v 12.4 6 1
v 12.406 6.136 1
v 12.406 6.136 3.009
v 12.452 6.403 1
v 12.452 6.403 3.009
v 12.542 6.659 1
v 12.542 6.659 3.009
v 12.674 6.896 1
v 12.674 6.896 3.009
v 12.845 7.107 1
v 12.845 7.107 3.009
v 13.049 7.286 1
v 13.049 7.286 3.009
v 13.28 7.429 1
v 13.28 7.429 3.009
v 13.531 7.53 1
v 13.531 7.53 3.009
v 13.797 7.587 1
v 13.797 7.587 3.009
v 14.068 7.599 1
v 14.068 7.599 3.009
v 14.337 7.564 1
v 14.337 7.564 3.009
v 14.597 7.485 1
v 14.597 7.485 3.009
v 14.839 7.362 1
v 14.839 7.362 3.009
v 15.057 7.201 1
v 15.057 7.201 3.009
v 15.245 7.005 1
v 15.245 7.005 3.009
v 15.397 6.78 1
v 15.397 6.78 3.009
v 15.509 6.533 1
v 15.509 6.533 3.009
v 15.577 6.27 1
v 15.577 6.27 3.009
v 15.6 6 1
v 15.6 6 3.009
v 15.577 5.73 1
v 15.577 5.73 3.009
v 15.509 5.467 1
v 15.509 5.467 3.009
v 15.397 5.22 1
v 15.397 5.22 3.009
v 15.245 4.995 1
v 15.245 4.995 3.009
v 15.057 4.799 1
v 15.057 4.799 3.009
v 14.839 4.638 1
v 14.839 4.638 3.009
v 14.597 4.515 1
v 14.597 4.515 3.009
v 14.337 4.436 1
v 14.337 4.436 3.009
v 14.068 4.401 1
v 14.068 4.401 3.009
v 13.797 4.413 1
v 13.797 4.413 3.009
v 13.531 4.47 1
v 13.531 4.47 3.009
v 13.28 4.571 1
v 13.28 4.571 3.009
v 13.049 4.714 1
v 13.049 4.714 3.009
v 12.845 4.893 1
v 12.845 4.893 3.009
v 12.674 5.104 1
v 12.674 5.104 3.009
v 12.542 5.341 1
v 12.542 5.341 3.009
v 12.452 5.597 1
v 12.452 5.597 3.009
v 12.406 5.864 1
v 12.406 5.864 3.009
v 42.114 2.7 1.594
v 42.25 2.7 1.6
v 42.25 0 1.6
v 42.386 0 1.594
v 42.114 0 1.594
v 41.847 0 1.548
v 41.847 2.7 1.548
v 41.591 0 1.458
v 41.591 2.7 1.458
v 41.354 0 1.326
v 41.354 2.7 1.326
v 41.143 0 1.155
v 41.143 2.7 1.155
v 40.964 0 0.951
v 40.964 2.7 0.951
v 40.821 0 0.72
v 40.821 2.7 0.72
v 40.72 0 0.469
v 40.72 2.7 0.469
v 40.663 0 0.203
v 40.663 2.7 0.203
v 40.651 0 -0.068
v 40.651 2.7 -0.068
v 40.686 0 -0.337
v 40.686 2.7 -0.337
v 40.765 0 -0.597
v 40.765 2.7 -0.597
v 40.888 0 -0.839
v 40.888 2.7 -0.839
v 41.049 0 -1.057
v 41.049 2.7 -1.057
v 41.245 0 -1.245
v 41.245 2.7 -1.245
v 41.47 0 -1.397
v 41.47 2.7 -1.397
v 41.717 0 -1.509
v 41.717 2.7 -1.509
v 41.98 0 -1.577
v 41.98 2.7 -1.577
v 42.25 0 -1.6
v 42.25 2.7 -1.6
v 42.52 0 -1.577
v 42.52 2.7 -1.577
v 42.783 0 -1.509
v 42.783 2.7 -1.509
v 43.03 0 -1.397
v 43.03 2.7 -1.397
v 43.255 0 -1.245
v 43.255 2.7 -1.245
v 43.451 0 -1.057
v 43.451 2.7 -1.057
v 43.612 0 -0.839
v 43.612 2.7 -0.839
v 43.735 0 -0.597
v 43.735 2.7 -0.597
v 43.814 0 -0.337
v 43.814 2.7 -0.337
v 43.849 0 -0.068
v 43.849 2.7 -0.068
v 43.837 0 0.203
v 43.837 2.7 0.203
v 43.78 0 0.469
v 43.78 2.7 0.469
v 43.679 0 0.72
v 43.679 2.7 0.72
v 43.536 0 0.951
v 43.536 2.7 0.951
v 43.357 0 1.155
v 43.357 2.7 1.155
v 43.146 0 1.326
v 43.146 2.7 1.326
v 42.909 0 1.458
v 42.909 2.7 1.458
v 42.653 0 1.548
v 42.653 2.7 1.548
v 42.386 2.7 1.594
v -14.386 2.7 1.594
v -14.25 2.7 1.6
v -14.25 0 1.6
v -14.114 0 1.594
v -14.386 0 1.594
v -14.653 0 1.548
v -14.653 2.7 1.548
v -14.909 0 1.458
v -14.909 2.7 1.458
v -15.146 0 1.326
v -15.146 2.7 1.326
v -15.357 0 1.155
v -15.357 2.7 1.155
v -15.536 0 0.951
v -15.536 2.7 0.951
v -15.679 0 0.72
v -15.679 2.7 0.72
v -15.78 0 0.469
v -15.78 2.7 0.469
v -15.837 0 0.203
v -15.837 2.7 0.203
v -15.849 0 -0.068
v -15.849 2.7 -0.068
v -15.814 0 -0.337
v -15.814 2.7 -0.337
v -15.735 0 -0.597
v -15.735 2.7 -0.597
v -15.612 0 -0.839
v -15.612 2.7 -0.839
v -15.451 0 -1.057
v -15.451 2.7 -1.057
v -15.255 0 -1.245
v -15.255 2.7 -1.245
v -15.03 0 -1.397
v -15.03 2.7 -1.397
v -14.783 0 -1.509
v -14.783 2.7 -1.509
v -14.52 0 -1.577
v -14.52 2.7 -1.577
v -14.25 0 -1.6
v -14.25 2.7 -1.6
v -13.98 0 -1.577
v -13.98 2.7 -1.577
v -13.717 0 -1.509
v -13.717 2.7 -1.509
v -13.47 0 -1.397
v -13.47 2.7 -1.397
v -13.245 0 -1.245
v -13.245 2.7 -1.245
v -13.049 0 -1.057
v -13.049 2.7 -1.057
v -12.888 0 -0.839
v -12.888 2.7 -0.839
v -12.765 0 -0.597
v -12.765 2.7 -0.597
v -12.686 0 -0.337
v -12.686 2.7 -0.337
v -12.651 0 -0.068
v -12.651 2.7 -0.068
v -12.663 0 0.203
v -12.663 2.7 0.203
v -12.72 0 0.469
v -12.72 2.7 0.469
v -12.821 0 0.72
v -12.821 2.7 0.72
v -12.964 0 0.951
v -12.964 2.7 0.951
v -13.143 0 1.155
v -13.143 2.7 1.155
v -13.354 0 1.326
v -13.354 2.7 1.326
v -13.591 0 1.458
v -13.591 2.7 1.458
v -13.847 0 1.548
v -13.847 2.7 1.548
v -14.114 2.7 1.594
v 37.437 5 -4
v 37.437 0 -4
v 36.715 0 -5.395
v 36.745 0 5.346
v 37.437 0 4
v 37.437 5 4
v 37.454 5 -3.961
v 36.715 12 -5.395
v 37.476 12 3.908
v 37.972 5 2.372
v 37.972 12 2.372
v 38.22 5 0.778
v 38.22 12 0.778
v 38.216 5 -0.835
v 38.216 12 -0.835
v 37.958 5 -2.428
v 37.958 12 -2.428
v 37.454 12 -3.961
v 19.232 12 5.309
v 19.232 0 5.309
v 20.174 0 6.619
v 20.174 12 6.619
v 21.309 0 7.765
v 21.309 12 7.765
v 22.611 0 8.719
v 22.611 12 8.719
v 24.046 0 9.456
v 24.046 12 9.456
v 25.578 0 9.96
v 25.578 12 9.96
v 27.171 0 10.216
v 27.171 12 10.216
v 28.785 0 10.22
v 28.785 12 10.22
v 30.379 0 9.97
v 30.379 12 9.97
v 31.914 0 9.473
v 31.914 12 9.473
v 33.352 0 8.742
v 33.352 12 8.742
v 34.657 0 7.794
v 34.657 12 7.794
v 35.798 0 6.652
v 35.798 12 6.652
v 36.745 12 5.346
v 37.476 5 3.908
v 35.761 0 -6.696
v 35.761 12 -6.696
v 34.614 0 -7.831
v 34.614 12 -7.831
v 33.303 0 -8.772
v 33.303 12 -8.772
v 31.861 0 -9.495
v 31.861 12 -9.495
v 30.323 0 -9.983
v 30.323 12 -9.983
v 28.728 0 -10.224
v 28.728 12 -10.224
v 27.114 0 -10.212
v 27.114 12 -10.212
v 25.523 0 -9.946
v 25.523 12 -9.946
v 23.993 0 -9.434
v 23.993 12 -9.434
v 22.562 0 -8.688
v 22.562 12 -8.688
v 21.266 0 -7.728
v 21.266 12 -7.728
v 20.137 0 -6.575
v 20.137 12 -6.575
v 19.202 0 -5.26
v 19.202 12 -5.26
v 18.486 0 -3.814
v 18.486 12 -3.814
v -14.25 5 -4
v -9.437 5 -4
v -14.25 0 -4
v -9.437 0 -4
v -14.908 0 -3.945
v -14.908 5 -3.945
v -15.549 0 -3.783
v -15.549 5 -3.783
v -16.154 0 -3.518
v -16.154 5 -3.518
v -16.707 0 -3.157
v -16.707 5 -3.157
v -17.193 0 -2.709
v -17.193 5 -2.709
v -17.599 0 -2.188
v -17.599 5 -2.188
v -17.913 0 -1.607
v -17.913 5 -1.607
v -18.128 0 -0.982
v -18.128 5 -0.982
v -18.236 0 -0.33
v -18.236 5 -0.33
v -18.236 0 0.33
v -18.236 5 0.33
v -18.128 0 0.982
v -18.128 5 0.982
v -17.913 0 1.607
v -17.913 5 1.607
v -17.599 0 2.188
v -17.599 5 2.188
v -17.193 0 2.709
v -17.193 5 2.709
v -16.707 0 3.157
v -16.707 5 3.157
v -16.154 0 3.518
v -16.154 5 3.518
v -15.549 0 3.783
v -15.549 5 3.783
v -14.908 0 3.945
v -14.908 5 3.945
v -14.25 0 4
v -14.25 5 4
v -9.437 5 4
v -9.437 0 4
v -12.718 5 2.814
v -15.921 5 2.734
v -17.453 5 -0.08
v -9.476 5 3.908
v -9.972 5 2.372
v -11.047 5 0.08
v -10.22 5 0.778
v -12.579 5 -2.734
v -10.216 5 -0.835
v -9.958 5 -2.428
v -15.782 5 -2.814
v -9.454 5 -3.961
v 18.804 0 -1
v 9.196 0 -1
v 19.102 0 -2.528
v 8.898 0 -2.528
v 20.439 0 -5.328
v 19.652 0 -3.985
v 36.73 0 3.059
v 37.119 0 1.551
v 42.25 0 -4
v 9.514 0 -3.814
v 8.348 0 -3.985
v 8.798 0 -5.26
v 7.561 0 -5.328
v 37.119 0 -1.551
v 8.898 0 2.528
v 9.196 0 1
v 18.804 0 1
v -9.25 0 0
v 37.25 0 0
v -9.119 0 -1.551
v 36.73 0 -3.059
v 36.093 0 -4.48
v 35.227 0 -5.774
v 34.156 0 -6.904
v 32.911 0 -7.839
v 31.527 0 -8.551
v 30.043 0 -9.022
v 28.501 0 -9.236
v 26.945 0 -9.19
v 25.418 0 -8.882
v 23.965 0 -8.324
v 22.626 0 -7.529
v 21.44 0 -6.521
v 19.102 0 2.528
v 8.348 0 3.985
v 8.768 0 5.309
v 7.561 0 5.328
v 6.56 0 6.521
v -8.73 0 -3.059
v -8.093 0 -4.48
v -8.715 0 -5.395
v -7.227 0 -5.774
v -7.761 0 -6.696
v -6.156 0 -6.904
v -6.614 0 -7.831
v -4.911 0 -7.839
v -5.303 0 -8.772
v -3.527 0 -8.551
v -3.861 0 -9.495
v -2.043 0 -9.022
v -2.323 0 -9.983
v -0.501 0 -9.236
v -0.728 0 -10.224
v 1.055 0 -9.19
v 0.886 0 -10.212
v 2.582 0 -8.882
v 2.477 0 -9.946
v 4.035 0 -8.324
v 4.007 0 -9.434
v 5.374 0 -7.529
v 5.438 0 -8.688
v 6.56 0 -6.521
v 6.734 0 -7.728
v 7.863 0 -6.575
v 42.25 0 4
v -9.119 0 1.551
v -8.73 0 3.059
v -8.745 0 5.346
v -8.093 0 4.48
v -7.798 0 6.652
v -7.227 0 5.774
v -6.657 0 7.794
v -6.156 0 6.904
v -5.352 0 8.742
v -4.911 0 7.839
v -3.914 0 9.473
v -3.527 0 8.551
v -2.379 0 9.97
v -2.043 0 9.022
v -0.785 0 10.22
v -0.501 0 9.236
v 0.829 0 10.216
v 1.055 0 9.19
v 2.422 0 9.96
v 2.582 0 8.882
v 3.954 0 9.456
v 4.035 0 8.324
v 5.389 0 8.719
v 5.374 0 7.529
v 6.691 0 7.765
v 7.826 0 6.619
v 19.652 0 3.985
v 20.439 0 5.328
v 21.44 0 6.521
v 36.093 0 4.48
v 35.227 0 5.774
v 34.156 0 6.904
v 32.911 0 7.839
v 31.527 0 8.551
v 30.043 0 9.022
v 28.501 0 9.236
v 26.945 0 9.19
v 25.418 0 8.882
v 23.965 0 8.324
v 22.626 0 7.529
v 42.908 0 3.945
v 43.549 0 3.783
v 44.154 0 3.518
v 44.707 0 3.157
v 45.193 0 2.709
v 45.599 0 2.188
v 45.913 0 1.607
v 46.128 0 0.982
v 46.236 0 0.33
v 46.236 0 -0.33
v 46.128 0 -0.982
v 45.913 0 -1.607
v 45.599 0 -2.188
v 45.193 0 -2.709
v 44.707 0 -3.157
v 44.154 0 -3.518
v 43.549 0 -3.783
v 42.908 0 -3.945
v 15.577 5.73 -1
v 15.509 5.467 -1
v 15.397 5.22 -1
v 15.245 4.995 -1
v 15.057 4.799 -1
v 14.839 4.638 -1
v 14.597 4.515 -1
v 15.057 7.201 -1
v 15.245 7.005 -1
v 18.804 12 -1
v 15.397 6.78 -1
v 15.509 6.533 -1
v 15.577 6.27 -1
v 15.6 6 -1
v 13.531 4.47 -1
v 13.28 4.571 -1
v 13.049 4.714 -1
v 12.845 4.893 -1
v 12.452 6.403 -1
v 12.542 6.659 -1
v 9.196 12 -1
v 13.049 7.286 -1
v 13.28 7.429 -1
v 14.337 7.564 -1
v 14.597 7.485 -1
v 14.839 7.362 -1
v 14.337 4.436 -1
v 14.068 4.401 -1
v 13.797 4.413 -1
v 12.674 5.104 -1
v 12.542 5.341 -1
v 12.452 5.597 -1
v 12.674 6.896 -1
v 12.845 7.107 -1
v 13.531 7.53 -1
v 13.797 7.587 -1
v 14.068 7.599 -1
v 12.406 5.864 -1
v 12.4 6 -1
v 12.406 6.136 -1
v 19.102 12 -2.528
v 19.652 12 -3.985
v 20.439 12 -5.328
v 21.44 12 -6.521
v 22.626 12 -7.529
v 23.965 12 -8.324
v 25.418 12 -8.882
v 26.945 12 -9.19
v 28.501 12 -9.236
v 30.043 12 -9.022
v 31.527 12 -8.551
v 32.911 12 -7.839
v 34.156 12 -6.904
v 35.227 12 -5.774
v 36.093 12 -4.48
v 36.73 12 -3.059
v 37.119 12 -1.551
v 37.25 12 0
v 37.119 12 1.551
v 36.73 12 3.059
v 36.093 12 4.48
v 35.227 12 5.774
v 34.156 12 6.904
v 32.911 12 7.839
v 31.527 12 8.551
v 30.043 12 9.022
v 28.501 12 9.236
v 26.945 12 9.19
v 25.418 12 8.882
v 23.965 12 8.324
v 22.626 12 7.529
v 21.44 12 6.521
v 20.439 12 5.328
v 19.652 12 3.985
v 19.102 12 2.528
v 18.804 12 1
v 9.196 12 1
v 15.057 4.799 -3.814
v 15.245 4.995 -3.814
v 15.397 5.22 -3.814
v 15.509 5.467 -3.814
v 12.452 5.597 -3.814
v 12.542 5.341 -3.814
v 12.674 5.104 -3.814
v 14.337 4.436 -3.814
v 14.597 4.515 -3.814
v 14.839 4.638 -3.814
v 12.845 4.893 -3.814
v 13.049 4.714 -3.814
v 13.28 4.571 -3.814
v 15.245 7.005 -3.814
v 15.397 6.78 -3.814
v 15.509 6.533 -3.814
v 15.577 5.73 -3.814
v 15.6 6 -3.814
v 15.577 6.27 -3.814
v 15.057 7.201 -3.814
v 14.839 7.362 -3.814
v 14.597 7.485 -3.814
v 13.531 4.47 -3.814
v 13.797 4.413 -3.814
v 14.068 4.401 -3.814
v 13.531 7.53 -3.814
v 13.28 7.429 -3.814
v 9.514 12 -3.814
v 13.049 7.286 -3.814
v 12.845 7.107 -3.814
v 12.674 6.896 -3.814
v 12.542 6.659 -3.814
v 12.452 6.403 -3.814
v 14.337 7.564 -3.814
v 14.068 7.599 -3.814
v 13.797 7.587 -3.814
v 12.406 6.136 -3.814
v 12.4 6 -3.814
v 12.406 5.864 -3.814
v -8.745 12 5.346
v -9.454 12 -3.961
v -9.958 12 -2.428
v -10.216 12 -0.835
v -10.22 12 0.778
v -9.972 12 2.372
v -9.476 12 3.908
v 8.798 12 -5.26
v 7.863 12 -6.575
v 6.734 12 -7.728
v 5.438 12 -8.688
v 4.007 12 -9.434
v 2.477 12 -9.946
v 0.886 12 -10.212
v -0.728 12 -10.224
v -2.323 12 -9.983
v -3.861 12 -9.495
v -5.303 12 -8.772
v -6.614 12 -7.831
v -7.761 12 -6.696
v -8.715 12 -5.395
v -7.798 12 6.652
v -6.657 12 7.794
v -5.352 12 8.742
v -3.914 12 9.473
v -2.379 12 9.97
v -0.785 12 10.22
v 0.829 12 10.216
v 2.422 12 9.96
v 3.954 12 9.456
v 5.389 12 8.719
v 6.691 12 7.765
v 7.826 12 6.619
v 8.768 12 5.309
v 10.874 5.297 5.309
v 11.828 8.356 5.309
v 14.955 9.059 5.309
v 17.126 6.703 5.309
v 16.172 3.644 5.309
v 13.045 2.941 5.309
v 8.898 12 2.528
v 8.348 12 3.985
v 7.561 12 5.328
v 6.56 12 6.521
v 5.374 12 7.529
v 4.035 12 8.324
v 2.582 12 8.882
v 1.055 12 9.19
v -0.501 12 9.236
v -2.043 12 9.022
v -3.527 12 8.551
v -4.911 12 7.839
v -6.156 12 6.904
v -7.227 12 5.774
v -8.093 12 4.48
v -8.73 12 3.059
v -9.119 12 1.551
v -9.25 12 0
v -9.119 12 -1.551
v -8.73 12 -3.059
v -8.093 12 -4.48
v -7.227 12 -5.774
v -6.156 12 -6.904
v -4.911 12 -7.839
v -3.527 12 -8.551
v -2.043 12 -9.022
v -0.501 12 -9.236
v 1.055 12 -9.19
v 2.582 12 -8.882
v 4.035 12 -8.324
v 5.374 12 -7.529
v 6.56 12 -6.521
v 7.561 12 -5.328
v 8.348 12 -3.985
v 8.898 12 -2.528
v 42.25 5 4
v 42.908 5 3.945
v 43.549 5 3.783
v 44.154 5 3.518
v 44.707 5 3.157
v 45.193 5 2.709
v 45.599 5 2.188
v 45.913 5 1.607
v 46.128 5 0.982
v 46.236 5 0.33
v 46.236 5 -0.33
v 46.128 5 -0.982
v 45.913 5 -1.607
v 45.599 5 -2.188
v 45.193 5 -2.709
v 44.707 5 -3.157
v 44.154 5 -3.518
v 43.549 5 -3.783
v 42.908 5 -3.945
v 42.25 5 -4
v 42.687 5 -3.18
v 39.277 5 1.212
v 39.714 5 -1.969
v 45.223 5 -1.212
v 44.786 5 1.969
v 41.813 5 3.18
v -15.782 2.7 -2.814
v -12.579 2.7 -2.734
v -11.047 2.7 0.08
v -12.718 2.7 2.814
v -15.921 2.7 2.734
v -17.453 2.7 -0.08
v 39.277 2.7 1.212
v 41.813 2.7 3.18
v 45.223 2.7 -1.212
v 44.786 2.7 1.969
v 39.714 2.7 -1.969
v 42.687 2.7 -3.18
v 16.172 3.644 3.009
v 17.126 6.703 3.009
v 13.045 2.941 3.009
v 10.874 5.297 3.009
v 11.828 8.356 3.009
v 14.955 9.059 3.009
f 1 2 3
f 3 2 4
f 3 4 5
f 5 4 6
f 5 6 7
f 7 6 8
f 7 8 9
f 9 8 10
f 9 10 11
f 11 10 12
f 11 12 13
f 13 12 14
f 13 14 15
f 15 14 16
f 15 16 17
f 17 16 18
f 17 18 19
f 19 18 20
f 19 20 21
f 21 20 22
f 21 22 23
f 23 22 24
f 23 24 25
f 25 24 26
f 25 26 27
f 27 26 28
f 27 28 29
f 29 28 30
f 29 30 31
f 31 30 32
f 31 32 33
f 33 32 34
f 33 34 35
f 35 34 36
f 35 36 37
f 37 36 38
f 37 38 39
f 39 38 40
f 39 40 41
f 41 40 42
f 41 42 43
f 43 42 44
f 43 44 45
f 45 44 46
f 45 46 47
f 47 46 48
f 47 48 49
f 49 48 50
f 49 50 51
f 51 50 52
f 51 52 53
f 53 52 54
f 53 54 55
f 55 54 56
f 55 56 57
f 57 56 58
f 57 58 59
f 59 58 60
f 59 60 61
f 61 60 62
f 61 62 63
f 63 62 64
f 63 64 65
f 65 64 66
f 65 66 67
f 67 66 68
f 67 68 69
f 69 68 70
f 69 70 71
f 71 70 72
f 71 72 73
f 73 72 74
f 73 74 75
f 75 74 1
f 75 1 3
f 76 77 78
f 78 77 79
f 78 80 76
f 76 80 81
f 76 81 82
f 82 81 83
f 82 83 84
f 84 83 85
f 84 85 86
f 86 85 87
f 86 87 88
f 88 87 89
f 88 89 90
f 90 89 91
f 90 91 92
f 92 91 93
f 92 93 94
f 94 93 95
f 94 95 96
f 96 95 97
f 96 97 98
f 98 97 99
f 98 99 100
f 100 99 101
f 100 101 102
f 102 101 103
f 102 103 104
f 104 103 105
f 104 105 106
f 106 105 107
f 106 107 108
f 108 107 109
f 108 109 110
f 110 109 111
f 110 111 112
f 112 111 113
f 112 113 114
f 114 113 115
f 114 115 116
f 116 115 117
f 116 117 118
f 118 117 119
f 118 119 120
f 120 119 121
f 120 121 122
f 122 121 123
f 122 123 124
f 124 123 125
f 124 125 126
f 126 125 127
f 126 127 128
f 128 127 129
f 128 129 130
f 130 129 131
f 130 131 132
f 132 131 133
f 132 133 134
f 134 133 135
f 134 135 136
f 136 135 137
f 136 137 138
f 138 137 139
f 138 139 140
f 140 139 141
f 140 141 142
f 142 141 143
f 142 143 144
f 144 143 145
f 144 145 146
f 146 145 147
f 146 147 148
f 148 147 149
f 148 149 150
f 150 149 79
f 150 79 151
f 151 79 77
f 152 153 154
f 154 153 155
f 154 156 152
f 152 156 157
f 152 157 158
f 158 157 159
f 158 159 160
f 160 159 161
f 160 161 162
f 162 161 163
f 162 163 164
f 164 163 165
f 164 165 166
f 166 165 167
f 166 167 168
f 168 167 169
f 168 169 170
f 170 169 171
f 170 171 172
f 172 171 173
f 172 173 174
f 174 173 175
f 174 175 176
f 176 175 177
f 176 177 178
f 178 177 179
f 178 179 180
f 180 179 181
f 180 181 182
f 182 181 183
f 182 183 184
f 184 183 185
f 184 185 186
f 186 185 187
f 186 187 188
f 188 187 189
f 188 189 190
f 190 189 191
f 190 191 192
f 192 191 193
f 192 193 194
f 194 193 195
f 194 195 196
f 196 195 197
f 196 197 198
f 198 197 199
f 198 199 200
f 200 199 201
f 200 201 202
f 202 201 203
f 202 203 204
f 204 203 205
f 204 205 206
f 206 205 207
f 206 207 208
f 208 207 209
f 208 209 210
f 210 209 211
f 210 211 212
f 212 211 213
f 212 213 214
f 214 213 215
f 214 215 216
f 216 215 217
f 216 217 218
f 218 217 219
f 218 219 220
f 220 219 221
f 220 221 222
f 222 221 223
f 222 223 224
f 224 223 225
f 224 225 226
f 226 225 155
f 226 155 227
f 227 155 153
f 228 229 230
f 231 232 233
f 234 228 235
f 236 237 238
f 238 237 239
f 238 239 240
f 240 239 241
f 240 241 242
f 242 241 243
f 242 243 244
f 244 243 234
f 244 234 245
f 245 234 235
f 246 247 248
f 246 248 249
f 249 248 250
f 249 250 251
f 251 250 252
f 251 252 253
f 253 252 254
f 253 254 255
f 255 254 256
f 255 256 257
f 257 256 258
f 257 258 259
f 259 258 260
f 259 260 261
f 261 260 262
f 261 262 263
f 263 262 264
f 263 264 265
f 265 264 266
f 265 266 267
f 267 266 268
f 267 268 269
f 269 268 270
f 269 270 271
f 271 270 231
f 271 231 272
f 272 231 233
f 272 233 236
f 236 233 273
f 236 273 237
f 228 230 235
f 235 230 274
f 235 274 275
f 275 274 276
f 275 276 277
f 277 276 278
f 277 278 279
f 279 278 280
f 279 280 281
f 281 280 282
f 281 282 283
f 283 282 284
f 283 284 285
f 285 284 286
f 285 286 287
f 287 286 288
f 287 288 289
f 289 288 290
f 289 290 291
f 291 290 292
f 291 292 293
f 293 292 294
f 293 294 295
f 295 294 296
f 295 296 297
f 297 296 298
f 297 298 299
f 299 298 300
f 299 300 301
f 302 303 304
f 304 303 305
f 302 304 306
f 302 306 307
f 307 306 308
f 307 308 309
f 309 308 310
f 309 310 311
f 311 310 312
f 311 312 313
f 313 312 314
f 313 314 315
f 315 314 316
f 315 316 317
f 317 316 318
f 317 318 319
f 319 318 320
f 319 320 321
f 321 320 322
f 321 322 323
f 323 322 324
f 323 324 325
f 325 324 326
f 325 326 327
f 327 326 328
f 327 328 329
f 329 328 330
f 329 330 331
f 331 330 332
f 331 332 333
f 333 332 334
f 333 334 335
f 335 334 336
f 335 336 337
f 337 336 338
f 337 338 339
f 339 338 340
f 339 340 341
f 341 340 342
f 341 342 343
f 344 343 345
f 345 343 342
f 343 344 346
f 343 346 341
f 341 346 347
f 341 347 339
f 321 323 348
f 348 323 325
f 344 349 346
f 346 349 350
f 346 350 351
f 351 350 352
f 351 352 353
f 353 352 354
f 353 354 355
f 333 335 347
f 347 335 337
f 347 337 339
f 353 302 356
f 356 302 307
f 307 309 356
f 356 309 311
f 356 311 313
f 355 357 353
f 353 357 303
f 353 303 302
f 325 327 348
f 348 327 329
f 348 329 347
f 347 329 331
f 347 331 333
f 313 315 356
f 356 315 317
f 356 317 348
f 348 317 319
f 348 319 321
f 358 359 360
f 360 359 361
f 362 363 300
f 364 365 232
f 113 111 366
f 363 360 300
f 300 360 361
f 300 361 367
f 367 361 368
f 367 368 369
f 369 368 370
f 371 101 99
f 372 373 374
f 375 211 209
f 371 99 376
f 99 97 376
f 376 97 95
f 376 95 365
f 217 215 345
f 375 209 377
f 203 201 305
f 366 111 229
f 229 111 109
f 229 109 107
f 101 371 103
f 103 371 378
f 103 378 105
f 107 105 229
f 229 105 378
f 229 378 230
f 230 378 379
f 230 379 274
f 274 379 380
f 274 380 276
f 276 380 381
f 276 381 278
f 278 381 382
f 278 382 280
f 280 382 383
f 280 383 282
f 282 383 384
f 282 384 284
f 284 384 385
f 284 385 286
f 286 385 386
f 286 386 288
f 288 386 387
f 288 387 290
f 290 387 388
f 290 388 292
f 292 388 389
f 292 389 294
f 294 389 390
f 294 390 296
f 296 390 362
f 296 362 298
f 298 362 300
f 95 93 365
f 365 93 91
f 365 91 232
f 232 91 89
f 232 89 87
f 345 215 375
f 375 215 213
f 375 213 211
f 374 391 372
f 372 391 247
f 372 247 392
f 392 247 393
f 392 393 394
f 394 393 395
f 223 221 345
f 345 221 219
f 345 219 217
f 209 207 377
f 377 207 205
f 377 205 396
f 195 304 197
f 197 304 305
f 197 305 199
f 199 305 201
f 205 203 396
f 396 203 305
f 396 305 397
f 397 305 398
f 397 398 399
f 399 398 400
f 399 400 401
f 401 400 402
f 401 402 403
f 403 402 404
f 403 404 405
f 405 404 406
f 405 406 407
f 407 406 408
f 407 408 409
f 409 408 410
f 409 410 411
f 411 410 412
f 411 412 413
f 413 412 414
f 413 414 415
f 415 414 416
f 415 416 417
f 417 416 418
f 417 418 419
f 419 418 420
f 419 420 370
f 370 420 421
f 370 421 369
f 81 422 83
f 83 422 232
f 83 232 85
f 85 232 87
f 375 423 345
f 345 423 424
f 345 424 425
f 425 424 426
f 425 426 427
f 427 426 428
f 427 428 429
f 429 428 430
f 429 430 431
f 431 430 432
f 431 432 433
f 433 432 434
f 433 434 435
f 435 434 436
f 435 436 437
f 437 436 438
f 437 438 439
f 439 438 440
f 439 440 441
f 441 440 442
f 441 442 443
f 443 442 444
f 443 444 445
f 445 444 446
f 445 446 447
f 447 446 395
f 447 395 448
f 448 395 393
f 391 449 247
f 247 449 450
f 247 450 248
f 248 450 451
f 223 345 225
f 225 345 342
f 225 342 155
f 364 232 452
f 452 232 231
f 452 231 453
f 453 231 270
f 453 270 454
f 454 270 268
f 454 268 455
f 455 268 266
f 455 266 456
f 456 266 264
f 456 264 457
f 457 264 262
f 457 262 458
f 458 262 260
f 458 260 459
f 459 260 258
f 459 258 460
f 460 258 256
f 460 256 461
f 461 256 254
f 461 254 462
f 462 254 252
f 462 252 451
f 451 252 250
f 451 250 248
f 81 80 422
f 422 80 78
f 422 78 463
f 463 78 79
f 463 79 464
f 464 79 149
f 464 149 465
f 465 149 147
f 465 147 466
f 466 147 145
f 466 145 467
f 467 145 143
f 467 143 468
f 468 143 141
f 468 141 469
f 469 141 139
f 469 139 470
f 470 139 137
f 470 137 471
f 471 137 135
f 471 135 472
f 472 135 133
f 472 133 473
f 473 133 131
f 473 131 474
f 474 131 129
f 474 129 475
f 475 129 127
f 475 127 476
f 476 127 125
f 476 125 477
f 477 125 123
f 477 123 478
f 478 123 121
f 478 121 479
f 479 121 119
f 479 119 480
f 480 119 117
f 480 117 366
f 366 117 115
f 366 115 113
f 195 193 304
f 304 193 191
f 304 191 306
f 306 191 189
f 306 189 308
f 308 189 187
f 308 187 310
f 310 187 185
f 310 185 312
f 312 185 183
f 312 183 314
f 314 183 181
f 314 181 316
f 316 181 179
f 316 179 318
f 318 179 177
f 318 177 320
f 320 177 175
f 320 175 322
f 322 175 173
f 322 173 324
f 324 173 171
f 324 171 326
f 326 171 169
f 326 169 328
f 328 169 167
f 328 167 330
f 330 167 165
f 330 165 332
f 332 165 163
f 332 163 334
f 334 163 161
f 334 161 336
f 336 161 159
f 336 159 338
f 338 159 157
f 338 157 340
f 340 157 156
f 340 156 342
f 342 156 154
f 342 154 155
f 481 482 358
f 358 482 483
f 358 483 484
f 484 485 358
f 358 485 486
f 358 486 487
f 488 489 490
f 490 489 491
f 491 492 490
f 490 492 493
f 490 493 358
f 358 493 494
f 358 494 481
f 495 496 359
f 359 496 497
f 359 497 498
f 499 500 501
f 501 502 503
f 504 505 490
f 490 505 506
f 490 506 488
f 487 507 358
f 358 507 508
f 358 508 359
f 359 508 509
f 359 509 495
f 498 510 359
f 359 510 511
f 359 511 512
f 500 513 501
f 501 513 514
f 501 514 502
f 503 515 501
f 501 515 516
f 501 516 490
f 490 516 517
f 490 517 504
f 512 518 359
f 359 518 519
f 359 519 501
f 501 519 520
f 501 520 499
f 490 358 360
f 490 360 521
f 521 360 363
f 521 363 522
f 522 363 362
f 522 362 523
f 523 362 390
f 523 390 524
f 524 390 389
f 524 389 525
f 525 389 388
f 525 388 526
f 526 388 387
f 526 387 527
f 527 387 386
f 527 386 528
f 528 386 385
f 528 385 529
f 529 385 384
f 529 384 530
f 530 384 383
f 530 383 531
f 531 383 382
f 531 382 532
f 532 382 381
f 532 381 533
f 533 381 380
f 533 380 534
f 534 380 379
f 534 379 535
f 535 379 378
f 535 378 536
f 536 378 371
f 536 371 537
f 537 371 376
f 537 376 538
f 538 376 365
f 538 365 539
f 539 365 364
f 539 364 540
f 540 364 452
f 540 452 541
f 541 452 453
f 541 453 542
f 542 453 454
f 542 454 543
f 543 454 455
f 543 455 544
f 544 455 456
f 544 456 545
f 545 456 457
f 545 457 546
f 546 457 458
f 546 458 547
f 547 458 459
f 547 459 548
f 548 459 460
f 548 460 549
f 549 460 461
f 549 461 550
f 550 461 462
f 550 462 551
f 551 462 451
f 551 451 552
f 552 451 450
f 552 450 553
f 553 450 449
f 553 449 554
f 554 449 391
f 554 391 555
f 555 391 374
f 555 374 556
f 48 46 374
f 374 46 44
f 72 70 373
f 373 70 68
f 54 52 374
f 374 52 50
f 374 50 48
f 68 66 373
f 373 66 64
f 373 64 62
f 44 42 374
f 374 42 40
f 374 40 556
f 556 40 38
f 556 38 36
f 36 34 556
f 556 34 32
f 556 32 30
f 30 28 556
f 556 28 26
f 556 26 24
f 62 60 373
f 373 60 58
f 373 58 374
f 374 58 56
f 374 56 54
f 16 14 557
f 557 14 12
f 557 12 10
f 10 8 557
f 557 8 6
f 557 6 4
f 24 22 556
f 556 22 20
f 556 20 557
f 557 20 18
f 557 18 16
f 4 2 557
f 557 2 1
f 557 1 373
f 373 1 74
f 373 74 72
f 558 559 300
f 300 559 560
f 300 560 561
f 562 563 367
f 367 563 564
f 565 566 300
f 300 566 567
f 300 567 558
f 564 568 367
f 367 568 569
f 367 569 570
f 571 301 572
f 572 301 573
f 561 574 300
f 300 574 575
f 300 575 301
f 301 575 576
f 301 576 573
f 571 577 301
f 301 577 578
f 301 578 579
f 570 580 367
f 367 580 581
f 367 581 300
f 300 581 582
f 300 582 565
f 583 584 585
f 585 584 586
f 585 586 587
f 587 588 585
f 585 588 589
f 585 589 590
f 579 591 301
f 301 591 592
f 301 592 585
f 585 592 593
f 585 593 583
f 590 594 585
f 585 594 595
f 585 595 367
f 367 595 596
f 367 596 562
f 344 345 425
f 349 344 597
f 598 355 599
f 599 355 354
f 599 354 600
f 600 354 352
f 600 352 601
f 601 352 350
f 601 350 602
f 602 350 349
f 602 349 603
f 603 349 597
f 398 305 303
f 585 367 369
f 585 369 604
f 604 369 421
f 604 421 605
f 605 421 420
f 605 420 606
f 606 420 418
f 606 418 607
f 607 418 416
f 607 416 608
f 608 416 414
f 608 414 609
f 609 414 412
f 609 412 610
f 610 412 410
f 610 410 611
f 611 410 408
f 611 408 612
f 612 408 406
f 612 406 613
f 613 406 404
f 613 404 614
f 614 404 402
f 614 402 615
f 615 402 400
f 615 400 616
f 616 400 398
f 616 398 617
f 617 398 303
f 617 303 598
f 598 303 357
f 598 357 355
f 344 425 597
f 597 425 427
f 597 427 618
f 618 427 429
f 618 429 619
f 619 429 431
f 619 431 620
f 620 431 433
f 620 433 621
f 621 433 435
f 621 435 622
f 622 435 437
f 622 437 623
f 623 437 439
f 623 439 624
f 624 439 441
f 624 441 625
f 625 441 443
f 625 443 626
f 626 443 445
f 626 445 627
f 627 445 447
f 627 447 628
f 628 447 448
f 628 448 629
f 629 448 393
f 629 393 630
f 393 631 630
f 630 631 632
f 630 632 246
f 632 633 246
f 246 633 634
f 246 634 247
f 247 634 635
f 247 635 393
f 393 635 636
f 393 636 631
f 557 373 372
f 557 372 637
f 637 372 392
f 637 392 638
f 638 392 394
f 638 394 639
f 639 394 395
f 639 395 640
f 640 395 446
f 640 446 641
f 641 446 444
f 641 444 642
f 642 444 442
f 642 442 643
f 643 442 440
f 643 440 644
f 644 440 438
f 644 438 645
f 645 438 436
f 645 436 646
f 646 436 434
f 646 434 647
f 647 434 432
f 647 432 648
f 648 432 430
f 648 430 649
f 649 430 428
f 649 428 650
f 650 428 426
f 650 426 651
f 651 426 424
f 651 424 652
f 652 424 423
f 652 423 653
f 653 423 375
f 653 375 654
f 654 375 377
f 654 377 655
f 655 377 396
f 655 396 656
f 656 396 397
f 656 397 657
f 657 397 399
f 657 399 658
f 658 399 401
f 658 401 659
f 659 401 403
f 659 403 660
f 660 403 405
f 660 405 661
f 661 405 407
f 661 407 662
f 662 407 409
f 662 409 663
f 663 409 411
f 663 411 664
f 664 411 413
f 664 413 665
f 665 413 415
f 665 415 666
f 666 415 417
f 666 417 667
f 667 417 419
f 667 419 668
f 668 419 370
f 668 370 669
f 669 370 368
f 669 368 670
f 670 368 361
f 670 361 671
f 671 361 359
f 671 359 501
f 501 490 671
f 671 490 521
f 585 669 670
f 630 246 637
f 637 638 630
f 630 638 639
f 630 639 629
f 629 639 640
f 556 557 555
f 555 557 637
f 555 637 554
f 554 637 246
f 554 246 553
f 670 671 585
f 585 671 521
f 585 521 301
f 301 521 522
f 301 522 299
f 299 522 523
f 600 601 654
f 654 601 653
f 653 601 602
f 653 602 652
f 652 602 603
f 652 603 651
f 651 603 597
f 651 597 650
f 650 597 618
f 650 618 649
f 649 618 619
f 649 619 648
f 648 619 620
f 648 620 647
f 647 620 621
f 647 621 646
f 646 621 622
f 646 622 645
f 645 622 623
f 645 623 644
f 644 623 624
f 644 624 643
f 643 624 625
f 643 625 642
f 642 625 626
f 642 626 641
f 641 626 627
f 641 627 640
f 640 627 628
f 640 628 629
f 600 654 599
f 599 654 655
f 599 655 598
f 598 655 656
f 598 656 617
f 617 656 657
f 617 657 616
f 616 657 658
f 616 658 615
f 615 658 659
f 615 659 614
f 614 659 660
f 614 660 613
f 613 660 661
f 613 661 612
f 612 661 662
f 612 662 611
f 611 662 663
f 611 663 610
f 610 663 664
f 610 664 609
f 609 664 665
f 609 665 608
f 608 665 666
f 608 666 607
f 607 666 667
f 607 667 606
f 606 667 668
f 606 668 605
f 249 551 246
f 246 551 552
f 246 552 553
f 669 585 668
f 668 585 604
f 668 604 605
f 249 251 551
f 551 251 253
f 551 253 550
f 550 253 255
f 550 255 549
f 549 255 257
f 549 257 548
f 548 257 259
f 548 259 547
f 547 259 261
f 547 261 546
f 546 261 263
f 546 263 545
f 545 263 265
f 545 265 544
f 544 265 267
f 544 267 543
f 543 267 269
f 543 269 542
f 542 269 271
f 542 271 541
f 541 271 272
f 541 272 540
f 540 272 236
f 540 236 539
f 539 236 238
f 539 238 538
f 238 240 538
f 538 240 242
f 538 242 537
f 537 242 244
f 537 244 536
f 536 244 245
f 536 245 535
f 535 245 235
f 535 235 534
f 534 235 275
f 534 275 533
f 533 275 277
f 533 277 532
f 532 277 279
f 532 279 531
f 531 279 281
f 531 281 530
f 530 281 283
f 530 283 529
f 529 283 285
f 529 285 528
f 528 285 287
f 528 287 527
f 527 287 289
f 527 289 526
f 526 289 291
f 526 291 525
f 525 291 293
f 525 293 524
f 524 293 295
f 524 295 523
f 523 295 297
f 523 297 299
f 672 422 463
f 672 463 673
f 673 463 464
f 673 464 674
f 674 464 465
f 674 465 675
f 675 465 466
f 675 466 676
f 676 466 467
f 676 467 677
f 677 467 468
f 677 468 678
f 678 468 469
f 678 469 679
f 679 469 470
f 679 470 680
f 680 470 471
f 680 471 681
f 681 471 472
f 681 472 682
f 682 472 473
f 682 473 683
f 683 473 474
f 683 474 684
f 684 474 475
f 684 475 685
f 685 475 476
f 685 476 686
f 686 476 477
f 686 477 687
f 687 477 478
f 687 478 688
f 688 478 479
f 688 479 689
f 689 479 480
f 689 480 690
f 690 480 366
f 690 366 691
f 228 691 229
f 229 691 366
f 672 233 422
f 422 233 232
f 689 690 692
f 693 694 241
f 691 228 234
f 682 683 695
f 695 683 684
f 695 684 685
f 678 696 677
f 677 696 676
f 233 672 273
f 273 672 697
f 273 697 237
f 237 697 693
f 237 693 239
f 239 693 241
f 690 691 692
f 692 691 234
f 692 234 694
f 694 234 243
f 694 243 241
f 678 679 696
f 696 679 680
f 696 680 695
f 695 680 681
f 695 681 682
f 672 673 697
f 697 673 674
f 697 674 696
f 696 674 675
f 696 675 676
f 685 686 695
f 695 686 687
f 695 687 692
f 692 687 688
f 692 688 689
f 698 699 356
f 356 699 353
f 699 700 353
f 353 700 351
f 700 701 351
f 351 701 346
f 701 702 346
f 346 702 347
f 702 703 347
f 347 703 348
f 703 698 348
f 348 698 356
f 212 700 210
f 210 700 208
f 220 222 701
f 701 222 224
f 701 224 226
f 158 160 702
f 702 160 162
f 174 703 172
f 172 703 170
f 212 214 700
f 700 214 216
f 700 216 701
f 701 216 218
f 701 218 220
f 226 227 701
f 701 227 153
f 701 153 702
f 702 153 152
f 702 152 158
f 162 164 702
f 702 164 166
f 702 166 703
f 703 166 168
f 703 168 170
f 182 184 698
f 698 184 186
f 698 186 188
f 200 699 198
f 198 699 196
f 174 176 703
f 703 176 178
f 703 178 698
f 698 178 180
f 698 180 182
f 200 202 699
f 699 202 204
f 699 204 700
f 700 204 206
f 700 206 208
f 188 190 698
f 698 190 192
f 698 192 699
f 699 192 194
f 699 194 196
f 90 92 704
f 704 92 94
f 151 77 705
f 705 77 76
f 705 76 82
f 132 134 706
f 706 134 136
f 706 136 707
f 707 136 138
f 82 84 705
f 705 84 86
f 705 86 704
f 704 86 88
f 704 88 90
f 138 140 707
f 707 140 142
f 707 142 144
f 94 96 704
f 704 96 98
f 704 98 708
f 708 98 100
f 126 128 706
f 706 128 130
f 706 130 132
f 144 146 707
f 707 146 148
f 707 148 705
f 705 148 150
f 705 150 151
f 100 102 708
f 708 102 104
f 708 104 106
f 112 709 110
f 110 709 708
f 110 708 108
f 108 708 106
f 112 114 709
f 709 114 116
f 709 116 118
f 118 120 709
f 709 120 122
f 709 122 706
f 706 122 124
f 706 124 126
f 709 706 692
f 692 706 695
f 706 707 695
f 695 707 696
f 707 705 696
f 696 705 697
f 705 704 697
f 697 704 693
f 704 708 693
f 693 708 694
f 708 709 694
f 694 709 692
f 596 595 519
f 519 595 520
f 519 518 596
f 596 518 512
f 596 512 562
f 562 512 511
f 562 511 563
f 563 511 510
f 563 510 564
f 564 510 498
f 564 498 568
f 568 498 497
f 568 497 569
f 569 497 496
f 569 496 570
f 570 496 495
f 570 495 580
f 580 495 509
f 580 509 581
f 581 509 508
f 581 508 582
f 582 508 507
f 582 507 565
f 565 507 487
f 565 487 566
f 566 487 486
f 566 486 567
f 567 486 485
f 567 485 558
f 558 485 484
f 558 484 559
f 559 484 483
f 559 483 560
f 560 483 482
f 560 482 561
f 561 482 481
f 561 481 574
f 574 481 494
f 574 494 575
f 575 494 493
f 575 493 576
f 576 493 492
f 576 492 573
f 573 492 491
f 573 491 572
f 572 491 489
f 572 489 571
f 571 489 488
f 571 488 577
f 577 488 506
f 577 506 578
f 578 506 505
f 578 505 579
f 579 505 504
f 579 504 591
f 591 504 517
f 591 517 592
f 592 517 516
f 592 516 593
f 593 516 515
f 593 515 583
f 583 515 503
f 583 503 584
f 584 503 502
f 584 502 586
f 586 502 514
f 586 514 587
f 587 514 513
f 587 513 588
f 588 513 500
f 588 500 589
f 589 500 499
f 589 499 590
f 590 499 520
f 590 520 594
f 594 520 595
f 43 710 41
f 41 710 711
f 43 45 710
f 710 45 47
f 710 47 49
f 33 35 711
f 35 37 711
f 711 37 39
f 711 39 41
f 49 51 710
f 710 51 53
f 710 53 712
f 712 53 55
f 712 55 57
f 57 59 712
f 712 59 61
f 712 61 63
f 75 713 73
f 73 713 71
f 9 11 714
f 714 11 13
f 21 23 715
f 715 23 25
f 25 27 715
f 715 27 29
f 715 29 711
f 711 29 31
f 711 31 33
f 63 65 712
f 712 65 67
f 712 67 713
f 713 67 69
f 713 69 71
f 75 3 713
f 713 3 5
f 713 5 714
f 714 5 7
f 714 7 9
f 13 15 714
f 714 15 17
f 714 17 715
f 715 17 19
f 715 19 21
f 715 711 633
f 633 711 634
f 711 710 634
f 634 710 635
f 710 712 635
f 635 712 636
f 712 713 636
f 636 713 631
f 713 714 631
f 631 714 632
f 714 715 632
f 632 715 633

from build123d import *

# Parameters (mm, degrees)
SKETCH1_R             = 1.6
BOSS_EXTRUDE2_DEPTH   = 5
BOSS_EXTRUDE2_2_DEPTH = 5
BOSS_EXTRUDE3_DEPTH   = 12
CUT_EXTRUDE1_DEPTH    = 2.3
CUT_EXTRUDE2_DEPTH    = 2.3
SKETCH4_R             = 1.6
CUT_EXTRUDE3_DEPTH    = 15
CUT_EXTRUDE4_DEPTH    = 2.3


with BuildPart() as part:
    # Sketch1 → Boss-Extrude2 (new body)
    with BuildSketch(Plane(origin=(0, 0, 0), x_dir=(1, 0, 0), z_dir=(0, 1, 0))):
        with BuildLine():
            ThreePointArc((-9.437293044, -4), (-10.25, 0), (-9.437293044, 4))
            Line((-9.437293044, 4), (-14.25, 4))
            ThreePointArc((-14.25, 4), (-18.25, 0), (-14.25, -4))
            Line((-14.25, -4), (-9.437293044, -4))
        make_face()
        with Locations((-14.25, 0)):
            Circle(SKETCH1_R, mode=Mode.SUBTRACT)
    extrude(amount=BOSS_EXTRUDE2_DEPTH)



with BuildPart() as body_2:
    # Sketch1 → Boss-Extrude2 2 (new body)
    with BuildSketch(Plane(origin=(0, 0, 0), x_dir=(1, 0, 0), z_dir=(0, 1, 0))):
        with BuildLine():
            Line((42.25, 4), (37.437293044, 4))
            ThreePointArc((37.437293044, 4), (38.25, 0), (37.437293044, -4))
            Line((37.437293044, -4), (42.25, -4))
            ThreePointArc((42.25, -4), (46.25, 0), (42.25, 4))
        make_face()
        with Locations((42.25, 0)):
            Circle(SKETCH1_R, mode=Mode.SUBTRACT)
    extrude(amount=BOSS_EXTRUDE2_2_DEPTH)


with BuildPart() as part_1:
    add(part.part)

    add(body_2.part)  # Boss-Extrude3 merges body 2
    # Sketch1<4> → Boss-Extrude3 (add)
    with BuildSketch(Plane(origin=(0, 0, 0), x_dir=(1, 0, 0), z_dir=(0, 1, 0))):
        with BuildLine():
            Line((18.4859967, 3.813953488), (9.5140033, 3.813953488))
            ThreePointArc((9.5140033, 3.813953488), (0.100620286, 10.249506113), (-9.437293044, 4))
            ThreePointArc((-9.437293044, 4), (-10.25, 0), (-9.437293044, -4))
            ThreePointArc((-9.437293044, -4), (-0.734983861, -10.223614758), (8.768076052, -5.308798579))
            Line((8.768076052, -5.308798579), (19.231923948, -5.308798579))
            ThreePointArc((19.231923948, -5.308798579), (28.734983861, -10.223614758), (37.437293044, -4))
            ThreePointArc((37.437293044, -4), (38.25, 0), (37.437293044, 4))
            ThreePointArc((37.437293044, 4), (27.899379714, 10.249506113), (18.4859967, 3.813953488))
        make_face()
        with BuildLine():
            ThreePointArc((9.195787079, -1), (-9.25, 0), (9.195787079, 1))
            Line((9.195787079, 1), (18.804212921, 1))
            ThreePointArc((18.804212921, 1), (37.25, 0), (18.804212921, -1))
            Line((18.804212921, -1), (9.195787079, -1))
        make_face(mode=Mode.SUBTRACT)
    extrude(amount=BOSS_EXTRUDE3_DEPTH)

    # Sketch2 → Cut-Extrude1 (cut)
    with BuildSketch(Plane(origin=(0, 5, 0), x_dir=(1, 0, 0), z_dir=(0, 1, 0))):
        Polygon((-15.782040378, 2.814312044), (-17.453285913, 0.080370135), (-15.921245535, -2.733941909), (-12.717959622, -2.814312044), (-11.046714087, -0.080370135), (-12.578754465, 2.733941909), align=None)
    extrude(amount=-CUT_EXTRUDE1_DEPTH, mode=Mode.SUBTRACT)

    # Sketch3 → Cut-Extrude2 (cut)
    with BuildSketch(Plane(origin=(0, 5, 0), x_dir=(1, 0, 0), z_dir=(0, 1, 0))):
        Polygon((42.687046229, 3.180176713), (39.714409293, 1.968581494), (39.277363063, -1.211595219), (41.812953771, -3.180176713), (44.785590707, -1.968581494), (45.222636937, 1.211595219), align=None)
    extrude(amount=-CUT_EXTRUDE2_DEPTH, mode=Mode.SUBTRACT)

    # Sketch4 → Cut-Extrude3 (cut)
    with BuildSketch(Plane.XY.offset(5.308798579)):
        with Locations((14, 6)):
            Circle(SKETCH4_R)
    extrude(amount=-CUT_EXTRUDE3_DEPTH, mode=Mode.SUBTRACT)

    # Sketch7 → Cut-Extrude4 (cut)
    with BuildSketch(Plane.XY.offset(5.308798579)):
        Polygon((14.954593719, 9.05879892), (11.82829929, 8.356101871), (10.873705571, 5.297302951), (13.045406281, 2.94120108), (16.17170071, 3.643898129), (17.126294429, 6.702697049), align=None)
    extrude(amount=-CUT_EXTRUDE4_DEPTH, mode=Mode.SUBTRACT)


solid = part_1.part
